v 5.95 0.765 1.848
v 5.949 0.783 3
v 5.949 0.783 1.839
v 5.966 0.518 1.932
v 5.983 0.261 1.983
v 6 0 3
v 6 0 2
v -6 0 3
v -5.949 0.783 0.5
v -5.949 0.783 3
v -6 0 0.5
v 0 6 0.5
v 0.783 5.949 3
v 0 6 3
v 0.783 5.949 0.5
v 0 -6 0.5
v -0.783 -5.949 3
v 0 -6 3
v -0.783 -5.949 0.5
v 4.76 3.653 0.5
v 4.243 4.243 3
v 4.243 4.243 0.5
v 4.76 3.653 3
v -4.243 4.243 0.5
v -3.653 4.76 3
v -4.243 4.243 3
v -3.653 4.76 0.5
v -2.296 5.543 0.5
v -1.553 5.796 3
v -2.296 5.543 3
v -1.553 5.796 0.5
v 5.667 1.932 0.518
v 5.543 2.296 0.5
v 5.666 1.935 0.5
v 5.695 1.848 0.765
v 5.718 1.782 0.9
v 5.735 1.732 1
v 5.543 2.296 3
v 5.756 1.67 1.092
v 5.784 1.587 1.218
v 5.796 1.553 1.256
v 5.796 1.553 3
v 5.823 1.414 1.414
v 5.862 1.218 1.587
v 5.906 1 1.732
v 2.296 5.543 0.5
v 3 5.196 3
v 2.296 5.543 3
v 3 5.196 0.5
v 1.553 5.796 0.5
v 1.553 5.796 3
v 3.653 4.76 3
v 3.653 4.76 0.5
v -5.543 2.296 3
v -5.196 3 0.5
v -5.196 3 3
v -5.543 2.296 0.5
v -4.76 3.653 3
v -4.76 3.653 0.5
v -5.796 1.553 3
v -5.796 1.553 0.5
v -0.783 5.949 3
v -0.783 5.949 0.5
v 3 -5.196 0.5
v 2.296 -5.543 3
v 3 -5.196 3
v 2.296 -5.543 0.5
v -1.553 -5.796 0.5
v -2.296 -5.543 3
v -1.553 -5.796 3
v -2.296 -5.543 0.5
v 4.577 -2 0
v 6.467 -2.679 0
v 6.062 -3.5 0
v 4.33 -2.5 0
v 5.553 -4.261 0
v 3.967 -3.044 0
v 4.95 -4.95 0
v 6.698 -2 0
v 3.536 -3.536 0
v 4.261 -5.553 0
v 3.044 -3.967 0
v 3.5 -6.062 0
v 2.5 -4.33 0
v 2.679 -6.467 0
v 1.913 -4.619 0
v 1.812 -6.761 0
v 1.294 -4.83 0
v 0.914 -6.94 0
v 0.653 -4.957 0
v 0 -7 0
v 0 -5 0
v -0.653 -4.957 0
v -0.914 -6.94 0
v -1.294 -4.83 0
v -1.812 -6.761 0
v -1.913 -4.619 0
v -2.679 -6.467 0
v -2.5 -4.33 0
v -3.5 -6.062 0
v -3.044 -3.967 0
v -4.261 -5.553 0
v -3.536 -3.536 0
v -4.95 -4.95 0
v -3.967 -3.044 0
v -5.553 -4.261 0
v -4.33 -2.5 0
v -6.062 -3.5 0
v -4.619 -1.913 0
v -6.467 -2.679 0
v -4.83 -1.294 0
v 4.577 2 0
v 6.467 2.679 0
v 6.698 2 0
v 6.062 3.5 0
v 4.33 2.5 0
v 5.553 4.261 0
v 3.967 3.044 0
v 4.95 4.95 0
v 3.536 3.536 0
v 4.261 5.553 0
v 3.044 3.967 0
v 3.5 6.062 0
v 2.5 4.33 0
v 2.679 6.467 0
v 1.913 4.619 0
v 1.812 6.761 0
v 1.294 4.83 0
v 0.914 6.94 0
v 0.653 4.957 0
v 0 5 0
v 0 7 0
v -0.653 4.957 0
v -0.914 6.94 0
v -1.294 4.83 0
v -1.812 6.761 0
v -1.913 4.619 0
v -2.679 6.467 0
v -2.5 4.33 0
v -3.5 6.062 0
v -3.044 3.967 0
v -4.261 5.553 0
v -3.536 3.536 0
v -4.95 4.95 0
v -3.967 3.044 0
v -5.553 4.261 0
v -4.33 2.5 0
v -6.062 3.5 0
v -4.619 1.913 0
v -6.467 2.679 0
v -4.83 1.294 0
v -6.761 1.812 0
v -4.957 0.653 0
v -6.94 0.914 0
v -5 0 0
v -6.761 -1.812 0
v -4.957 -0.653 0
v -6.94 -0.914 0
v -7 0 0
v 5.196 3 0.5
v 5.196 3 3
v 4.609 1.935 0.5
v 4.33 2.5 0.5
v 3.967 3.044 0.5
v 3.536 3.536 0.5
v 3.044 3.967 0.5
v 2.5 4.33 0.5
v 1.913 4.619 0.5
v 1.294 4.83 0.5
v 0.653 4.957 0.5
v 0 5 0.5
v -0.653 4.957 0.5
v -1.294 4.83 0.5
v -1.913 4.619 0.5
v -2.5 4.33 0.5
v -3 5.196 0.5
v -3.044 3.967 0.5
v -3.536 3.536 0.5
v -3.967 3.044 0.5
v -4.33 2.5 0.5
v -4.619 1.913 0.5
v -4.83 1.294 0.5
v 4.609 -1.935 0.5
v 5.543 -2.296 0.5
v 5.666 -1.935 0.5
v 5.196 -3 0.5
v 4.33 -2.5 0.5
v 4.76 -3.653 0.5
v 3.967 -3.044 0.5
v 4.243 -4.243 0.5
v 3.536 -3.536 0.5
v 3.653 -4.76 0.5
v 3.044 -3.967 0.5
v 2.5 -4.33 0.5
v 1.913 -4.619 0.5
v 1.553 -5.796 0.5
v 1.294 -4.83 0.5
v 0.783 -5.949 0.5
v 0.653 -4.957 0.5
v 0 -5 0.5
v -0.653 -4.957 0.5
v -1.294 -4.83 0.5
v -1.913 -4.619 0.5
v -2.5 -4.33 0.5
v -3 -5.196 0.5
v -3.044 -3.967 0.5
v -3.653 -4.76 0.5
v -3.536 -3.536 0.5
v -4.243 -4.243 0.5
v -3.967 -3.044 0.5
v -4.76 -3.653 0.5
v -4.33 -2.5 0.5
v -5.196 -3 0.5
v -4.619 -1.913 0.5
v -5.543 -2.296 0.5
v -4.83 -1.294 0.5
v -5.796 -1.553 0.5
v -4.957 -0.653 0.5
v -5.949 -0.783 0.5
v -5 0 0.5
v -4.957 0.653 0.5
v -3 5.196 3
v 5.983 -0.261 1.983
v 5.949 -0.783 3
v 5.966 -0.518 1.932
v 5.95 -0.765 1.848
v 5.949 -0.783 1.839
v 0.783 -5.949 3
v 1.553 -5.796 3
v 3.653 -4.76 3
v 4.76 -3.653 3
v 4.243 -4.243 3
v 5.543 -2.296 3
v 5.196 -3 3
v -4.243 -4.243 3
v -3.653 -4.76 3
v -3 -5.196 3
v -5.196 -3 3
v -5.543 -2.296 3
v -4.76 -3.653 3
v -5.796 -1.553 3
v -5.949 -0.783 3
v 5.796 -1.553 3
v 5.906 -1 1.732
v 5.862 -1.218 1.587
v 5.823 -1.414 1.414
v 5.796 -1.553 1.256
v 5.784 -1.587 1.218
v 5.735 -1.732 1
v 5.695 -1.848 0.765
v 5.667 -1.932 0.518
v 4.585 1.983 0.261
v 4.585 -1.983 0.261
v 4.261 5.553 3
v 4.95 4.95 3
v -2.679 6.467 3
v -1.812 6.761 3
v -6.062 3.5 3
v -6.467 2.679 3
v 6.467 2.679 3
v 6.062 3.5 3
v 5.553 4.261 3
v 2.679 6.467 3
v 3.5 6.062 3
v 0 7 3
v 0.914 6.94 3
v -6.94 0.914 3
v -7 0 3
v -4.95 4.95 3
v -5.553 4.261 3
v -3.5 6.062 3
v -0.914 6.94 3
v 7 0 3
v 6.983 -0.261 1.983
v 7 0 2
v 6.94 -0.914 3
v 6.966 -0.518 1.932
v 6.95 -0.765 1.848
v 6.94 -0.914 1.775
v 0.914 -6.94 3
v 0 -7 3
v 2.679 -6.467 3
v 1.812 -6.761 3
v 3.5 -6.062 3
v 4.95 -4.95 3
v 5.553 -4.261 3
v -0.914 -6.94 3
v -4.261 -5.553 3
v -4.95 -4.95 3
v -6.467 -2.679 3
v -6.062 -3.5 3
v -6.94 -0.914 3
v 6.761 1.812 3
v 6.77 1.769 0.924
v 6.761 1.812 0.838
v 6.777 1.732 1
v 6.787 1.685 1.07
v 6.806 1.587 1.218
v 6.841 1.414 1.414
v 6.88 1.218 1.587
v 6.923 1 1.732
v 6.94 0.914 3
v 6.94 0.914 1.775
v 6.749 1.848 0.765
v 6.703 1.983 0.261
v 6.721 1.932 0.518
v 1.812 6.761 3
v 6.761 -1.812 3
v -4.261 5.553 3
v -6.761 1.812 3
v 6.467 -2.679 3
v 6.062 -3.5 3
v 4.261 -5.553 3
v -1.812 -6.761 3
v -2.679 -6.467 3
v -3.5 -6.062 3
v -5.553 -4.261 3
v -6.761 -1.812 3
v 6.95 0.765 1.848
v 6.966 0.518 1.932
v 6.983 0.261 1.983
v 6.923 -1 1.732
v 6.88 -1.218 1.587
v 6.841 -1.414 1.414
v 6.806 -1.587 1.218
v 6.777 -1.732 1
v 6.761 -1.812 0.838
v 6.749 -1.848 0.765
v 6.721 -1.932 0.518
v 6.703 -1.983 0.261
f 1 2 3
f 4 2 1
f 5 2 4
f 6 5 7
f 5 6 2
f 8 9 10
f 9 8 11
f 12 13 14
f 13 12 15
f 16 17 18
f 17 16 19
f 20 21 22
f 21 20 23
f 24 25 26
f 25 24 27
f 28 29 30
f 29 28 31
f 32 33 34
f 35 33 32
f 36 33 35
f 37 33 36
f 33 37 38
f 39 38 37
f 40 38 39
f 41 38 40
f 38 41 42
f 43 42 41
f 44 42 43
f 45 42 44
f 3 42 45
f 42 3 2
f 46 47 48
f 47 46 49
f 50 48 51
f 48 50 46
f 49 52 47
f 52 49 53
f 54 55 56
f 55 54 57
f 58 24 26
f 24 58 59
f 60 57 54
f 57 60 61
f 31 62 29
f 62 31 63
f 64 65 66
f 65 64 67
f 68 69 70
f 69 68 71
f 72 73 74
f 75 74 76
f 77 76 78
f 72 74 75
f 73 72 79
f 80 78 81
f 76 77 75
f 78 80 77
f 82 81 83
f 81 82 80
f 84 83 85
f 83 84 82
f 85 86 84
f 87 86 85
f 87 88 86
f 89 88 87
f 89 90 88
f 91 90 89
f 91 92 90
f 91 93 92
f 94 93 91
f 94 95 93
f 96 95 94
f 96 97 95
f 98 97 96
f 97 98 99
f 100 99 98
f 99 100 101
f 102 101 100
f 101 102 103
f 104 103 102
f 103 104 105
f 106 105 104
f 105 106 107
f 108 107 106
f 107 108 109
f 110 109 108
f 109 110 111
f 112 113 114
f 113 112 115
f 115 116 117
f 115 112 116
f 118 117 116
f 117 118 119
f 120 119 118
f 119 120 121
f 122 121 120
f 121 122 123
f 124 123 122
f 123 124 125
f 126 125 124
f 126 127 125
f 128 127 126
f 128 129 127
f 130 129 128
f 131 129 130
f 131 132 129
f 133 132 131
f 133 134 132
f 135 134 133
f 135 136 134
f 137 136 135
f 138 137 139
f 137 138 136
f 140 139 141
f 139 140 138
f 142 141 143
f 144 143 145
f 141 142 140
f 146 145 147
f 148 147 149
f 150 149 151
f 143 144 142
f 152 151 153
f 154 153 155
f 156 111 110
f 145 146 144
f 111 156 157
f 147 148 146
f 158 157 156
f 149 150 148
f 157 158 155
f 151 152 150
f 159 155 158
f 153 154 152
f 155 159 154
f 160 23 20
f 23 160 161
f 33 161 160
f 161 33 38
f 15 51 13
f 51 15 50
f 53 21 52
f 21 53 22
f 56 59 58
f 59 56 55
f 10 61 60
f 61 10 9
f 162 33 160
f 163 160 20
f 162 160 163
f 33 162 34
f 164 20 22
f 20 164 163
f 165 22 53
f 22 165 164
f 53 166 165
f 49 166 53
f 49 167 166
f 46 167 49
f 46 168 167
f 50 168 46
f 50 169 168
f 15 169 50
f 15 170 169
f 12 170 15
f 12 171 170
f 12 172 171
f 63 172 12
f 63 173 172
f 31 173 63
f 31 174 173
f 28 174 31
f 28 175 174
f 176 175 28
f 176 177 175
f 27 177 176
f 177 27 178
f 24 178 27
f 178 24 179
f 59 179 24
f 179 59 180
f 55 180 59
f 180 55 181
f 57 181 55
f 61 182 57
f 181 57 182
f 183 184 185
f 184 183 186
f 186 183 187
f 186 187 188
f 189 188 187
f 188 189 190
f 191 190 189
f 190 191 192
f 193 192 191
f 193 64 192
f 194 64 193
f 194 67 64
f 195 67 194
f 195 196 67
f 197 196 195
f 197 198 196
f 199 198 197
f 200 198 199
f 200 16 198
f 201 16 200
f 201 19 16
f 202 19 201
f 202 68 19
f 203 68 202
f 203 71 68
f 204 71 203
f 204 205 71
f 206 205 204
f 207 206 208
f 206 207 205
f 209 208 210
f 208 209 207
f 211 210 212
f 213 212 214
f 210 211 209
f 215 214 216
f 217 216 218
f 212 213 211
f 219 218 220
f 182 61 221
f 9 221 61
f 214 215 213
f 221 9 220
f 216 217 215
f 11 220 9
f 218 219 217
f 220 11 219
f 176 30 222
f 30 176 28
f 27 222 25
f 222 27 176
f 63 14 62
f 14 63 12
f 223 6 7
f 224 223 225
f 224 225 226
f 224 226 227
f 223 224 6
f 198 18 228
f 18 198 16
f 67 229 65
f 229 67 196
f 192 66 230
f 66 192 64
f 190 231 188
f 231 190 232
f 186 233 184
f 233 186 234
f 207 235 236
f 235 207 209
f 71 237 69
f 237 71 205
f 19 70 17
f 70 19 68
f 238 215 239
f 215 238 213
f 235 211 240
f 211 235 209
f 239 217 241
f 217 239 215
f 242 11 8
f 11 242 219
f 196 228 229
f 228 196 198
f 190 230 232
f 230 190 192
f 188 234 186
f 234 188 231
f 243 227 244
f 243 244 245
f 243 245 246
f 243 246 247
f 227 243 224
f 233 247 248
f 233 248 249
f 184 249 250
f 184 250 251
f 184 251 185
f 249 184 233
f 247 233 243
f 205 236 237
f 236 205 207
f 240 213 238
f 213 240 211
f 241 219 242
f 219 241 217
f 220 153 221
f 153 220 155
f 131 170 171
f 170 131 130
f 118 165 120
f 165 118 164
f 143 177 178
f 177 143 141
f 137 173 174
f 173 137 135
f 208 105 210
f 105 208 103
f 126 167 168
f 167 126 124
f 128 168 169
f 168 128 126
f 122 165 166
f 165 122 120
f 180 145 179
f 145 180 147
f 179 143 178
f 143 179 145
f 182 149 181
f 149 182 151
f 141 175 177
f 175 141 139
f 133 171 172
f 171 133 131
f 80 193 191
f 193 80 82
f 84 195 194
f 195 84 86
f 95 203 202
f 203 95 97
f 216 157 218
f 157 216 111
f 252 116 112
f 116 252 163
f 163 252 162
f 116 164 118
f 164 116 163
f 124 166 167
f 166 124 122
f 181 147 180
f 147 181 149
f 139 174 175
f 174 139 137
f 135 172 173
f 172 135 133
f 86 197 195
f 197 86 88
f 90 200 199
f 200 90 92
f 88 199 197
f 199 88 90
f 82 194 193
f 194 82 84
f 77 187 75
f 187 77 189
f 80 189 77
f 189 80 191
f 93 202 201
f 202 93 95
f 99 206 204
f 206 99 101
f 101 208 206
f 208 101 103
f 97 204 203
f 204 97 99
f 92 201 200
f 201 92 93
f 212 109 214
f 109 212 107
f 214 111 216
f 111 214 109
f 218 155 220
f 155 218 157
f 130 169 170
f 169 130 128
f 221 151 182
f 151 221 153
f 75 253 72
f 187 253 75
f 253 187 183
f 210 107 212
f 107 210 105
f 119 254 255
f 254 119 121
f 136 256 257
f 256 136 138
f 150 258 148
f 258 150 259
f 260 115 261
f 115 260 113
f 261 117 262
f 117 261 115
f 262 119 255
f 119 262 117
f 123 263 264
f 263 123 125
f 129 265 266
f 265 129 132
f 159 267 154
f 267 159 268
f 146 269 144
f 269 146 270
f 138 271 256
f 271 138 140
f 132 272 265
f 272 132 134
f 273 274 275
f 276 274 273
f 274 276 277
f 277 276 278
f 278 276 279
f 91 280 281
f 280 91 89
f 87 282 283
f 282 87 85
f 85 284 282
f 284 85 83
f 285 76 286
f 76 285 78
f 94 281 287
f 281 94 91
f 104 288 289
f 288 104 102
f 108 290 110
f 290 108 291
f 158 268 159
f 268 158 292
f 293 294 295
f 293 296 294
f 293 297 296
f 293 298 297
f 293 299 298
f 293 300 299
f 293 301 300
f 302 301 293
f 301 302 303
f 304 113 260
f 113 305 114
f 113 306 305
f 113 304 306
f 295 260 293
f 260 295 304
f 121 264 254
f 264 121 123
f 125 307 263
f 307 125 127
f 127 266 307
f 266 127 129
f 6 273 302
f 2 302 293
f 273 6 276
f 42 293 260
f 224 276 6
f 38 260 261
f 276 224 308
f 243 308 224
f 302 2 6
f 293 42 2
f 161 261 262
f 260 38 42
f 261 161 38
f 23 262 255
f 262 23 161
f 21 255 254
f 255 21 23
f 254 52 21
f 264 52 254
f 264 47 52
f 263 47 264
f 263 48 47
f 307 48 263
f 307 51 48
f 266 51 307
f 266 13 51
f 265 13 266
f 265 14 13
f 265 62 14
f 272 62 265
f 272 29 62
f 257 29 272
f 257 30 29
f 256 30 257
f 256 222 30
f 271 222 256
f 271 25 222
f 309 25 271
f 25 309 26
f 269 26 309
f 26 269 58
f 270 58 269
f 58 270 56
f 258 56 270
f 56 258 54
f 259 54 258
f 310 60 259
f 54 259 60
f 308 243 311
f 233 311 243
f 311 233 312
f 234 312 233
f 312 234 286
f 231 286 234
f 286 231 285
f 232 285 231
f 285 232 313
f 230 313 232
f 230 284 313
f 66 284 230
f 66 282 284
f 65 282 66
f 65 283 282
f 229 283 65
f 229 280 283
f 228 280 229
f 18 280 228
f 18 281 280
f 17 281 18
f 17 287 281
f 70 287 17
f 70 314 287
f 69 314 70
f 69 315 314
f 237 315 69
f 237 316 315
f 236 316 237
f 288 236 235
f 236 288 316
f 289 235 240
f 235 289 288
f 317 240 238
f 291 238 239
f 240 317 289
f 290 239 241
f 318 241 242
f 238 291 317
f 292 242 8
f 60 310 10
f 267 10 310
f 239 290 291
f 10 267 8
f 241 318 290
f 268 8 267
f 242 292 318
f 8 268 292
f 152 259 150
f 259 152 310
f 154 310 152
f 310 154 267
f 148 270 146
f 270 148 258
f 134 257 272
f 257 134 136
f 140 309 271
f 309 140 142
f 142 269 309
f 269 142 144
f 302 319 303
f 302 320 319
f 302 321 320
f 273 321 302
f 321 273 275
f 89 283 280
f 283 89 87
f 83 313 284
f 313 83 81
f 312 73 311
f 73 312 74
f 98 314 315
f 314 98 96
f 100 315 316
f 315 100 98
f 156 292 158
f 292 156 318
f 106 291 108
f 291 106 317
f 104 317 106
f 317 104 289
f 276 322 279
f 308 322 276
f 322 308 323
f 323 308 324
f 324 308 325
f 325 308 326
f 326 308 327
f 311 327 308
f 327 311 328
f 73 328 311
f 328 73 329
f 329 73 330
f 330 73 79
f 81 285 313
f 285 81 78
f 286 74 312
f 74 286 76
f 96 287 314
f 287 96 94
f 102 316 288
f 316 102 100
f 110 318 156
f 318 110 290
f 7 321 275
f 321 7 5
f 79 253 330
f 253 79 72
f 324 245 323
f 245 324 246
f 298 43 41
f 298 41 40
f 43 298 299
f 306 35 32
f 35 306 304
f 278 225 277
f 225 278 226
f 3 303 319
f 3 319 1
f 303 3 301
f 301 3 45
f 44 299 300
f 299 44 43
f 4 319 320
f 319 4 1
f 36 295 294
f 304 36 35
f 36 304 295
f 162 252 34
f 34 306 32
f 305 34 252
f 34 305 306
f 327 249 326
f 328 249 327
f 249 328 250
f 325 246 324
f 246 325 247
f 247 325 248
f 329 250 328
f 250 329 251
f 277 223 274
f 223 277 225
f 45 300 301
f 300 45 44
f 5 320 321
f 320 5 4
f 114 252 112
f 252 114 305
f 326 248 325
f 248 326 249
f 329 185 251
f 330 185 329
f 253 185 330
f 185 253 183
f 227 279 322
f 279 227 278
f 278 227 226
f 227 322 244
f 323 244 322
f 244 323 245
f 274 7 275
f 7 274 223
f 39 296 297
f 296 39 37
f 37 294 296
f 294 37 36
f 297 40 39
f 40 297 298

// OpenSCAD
// file: ../build_environments.scad
// build_environments.scad: modules to build level sections
//

module pool(diameter=10.0, wall_height=2.0, step_width=3.0, connections=[])
{
    difference() {
        union() {
        difference() {
            cylinder(h=0.5,r1=diameter+step_width,r2=diameter+step_width,$fn=48);
            translate([0,0,-0.1])
                cylinder(h=0.7,r1=diameter,r2=diameter,$fn=48);
        }
        difference() {
            cylinder(h=wall_height,r1=diameter+step_width+1.0,r2=diameter+step_width+1.0,$fn=48);
            translate([0,0,-0.1])
                cylinder(h=wall_height+0.2,r1=diameter+step_width,r2=diameter+step_width,$fn=48);
        }
        }
    
        for (c = connections)
        {
            rotate([0,90,0]) {
                angle = atan2(c[1],c[0]);
                rotate([-angle,0,0]) {
                    cylinder(h=diameter+5.0,r1=c[2],r2=c[2],$fn=48);
                }
            }
        }
    }
}

module straight(length=10.0, width=2.0, dy1=0.0, dy2=0.0, dz=0.0)
{
    dims = [0, 0, 0, 0, 0, (dz/length)];
    matrix = [
        [ 1, dims[0], dims[1], 0 ],
        [ dims[2], 1, dims[4], 0 ],
        [ dims[5], dims[3], 1, 0 ],
        [ 0, 0, 0, 1 ]
    ];
    multmatrix(matrix)
    difference() {
        translate([dy1,0,0])
        union() {
            rotate([0,90,0]) {
                difference() {
                    cylinder(h=(length-dy1-dy2),r1=width+1.0,r2=width+1.0,$fn=24);
                    translate([0,0,-0.1])
                        cylinder(h=(length-dy1-dy2+0.2),r1=width,r2=width,$fn=24);
                }
                difference() {
                    cylinder(h=1.0,r1=width+2.0,r2=width+2.0,$fn=24);
                    translate([0,0,-0.1])
                        cylinder(h=1.2,r1=width,r2=width,$fn=24);
                }
                translate([0,0,(length-dy1-dy2)-1.0]) {
                    difference() {
                        cylinder(h=1.0,r1=width+2.0,r2=width+2.0,$fn=24);
                        translate([0,0,-0.1])
                            cylinder(h=1.2,r1=width,r2=width,$fn=24);
                    }
                }
            }
        }
        translate([0,0,-(2*width+4.0)/2])
            cube([3*length,3*length,2*width+4.0],center=true);
    }
}

module curve(p0=[0,0], center=[0,0], dir=1, angle=0.0, width=2.0)
{
    radius = sqrt((p0[0]-center[0])*(p0[0]-center[0]) + (p0[1]-center[1])*(p0[1]-center[1]));
    if (dir == 0) {
        difference() {
            rotate([0,0,-90])
            difference() {
                rotate_extrude(angle = angle, convexity = 10, $fn=32)
                    translate([radius, 0, 0])
                        circle(r = width+1.0,$fn=24);
                rotate([0,0,-1.0])
                    rotate_extrude(angle = angle+2.0, convexity = 10, $fn=32)
                        translate([radius, 0, 0])
                            circle(r = width,$fn=24);
            }
            translate([0,0,-(2*width+4.0)/2])
                cube([5*radius,5*radius,2*width+4.0],center=true);
        }
    }
    else {
        difference() {
            rotate([0,0,90])
            difference() {
                rotate_extrude(angle = -angle, convexity = 10, $fn=32)
                    translate([radius, 0, 0])
                        circle(r = width+1.0,$fn=24);
                rotate([0,0,1.0])
                    rotate_extrude(angle = -angle-2.0, convexity = 10, $fn=32)
                        translate([radius, 0, 0])
                            circle(r = width,$fn=24);
            }
            translate([0,0,-(2*width+4.0)/2])
                cube([5*radius,5*radius,2*width+4.0],center=true);
        }
    }

}

// test pool
//pool(diameter=12.0000, wall_height=3.0000, step_width=3.0000, connections=[[0.0000,-26.0000,2.0000], [23.6074,0.0000,2.0000]]);

// test straight, slope
//straight(length=26.0000, width=2.0000, dy1=11.8322, dy2=6.7082, dz=0.0000);
//straight(length=29.1549, width=12.0000, dy1=0.0000, dy2=0.0000, dz=-15.0000);

// test curve
//curve(p0=[23.6074, 0.0000], center=[23.6074, 5.0000], dir=0, angle=60.1011, width=2.0000);
//curve(p0=[33.6426, 12.4219], center=[37.9771, 9.9295], dir=1, angle=120.4627, width=2.0000);
// main file
use <../build_environments.scad>;
pool(diameter=5.0000, wall_height=3.0000, step_width=1.0000, connections=[[14.0000,0.0000,2.0000]]);
